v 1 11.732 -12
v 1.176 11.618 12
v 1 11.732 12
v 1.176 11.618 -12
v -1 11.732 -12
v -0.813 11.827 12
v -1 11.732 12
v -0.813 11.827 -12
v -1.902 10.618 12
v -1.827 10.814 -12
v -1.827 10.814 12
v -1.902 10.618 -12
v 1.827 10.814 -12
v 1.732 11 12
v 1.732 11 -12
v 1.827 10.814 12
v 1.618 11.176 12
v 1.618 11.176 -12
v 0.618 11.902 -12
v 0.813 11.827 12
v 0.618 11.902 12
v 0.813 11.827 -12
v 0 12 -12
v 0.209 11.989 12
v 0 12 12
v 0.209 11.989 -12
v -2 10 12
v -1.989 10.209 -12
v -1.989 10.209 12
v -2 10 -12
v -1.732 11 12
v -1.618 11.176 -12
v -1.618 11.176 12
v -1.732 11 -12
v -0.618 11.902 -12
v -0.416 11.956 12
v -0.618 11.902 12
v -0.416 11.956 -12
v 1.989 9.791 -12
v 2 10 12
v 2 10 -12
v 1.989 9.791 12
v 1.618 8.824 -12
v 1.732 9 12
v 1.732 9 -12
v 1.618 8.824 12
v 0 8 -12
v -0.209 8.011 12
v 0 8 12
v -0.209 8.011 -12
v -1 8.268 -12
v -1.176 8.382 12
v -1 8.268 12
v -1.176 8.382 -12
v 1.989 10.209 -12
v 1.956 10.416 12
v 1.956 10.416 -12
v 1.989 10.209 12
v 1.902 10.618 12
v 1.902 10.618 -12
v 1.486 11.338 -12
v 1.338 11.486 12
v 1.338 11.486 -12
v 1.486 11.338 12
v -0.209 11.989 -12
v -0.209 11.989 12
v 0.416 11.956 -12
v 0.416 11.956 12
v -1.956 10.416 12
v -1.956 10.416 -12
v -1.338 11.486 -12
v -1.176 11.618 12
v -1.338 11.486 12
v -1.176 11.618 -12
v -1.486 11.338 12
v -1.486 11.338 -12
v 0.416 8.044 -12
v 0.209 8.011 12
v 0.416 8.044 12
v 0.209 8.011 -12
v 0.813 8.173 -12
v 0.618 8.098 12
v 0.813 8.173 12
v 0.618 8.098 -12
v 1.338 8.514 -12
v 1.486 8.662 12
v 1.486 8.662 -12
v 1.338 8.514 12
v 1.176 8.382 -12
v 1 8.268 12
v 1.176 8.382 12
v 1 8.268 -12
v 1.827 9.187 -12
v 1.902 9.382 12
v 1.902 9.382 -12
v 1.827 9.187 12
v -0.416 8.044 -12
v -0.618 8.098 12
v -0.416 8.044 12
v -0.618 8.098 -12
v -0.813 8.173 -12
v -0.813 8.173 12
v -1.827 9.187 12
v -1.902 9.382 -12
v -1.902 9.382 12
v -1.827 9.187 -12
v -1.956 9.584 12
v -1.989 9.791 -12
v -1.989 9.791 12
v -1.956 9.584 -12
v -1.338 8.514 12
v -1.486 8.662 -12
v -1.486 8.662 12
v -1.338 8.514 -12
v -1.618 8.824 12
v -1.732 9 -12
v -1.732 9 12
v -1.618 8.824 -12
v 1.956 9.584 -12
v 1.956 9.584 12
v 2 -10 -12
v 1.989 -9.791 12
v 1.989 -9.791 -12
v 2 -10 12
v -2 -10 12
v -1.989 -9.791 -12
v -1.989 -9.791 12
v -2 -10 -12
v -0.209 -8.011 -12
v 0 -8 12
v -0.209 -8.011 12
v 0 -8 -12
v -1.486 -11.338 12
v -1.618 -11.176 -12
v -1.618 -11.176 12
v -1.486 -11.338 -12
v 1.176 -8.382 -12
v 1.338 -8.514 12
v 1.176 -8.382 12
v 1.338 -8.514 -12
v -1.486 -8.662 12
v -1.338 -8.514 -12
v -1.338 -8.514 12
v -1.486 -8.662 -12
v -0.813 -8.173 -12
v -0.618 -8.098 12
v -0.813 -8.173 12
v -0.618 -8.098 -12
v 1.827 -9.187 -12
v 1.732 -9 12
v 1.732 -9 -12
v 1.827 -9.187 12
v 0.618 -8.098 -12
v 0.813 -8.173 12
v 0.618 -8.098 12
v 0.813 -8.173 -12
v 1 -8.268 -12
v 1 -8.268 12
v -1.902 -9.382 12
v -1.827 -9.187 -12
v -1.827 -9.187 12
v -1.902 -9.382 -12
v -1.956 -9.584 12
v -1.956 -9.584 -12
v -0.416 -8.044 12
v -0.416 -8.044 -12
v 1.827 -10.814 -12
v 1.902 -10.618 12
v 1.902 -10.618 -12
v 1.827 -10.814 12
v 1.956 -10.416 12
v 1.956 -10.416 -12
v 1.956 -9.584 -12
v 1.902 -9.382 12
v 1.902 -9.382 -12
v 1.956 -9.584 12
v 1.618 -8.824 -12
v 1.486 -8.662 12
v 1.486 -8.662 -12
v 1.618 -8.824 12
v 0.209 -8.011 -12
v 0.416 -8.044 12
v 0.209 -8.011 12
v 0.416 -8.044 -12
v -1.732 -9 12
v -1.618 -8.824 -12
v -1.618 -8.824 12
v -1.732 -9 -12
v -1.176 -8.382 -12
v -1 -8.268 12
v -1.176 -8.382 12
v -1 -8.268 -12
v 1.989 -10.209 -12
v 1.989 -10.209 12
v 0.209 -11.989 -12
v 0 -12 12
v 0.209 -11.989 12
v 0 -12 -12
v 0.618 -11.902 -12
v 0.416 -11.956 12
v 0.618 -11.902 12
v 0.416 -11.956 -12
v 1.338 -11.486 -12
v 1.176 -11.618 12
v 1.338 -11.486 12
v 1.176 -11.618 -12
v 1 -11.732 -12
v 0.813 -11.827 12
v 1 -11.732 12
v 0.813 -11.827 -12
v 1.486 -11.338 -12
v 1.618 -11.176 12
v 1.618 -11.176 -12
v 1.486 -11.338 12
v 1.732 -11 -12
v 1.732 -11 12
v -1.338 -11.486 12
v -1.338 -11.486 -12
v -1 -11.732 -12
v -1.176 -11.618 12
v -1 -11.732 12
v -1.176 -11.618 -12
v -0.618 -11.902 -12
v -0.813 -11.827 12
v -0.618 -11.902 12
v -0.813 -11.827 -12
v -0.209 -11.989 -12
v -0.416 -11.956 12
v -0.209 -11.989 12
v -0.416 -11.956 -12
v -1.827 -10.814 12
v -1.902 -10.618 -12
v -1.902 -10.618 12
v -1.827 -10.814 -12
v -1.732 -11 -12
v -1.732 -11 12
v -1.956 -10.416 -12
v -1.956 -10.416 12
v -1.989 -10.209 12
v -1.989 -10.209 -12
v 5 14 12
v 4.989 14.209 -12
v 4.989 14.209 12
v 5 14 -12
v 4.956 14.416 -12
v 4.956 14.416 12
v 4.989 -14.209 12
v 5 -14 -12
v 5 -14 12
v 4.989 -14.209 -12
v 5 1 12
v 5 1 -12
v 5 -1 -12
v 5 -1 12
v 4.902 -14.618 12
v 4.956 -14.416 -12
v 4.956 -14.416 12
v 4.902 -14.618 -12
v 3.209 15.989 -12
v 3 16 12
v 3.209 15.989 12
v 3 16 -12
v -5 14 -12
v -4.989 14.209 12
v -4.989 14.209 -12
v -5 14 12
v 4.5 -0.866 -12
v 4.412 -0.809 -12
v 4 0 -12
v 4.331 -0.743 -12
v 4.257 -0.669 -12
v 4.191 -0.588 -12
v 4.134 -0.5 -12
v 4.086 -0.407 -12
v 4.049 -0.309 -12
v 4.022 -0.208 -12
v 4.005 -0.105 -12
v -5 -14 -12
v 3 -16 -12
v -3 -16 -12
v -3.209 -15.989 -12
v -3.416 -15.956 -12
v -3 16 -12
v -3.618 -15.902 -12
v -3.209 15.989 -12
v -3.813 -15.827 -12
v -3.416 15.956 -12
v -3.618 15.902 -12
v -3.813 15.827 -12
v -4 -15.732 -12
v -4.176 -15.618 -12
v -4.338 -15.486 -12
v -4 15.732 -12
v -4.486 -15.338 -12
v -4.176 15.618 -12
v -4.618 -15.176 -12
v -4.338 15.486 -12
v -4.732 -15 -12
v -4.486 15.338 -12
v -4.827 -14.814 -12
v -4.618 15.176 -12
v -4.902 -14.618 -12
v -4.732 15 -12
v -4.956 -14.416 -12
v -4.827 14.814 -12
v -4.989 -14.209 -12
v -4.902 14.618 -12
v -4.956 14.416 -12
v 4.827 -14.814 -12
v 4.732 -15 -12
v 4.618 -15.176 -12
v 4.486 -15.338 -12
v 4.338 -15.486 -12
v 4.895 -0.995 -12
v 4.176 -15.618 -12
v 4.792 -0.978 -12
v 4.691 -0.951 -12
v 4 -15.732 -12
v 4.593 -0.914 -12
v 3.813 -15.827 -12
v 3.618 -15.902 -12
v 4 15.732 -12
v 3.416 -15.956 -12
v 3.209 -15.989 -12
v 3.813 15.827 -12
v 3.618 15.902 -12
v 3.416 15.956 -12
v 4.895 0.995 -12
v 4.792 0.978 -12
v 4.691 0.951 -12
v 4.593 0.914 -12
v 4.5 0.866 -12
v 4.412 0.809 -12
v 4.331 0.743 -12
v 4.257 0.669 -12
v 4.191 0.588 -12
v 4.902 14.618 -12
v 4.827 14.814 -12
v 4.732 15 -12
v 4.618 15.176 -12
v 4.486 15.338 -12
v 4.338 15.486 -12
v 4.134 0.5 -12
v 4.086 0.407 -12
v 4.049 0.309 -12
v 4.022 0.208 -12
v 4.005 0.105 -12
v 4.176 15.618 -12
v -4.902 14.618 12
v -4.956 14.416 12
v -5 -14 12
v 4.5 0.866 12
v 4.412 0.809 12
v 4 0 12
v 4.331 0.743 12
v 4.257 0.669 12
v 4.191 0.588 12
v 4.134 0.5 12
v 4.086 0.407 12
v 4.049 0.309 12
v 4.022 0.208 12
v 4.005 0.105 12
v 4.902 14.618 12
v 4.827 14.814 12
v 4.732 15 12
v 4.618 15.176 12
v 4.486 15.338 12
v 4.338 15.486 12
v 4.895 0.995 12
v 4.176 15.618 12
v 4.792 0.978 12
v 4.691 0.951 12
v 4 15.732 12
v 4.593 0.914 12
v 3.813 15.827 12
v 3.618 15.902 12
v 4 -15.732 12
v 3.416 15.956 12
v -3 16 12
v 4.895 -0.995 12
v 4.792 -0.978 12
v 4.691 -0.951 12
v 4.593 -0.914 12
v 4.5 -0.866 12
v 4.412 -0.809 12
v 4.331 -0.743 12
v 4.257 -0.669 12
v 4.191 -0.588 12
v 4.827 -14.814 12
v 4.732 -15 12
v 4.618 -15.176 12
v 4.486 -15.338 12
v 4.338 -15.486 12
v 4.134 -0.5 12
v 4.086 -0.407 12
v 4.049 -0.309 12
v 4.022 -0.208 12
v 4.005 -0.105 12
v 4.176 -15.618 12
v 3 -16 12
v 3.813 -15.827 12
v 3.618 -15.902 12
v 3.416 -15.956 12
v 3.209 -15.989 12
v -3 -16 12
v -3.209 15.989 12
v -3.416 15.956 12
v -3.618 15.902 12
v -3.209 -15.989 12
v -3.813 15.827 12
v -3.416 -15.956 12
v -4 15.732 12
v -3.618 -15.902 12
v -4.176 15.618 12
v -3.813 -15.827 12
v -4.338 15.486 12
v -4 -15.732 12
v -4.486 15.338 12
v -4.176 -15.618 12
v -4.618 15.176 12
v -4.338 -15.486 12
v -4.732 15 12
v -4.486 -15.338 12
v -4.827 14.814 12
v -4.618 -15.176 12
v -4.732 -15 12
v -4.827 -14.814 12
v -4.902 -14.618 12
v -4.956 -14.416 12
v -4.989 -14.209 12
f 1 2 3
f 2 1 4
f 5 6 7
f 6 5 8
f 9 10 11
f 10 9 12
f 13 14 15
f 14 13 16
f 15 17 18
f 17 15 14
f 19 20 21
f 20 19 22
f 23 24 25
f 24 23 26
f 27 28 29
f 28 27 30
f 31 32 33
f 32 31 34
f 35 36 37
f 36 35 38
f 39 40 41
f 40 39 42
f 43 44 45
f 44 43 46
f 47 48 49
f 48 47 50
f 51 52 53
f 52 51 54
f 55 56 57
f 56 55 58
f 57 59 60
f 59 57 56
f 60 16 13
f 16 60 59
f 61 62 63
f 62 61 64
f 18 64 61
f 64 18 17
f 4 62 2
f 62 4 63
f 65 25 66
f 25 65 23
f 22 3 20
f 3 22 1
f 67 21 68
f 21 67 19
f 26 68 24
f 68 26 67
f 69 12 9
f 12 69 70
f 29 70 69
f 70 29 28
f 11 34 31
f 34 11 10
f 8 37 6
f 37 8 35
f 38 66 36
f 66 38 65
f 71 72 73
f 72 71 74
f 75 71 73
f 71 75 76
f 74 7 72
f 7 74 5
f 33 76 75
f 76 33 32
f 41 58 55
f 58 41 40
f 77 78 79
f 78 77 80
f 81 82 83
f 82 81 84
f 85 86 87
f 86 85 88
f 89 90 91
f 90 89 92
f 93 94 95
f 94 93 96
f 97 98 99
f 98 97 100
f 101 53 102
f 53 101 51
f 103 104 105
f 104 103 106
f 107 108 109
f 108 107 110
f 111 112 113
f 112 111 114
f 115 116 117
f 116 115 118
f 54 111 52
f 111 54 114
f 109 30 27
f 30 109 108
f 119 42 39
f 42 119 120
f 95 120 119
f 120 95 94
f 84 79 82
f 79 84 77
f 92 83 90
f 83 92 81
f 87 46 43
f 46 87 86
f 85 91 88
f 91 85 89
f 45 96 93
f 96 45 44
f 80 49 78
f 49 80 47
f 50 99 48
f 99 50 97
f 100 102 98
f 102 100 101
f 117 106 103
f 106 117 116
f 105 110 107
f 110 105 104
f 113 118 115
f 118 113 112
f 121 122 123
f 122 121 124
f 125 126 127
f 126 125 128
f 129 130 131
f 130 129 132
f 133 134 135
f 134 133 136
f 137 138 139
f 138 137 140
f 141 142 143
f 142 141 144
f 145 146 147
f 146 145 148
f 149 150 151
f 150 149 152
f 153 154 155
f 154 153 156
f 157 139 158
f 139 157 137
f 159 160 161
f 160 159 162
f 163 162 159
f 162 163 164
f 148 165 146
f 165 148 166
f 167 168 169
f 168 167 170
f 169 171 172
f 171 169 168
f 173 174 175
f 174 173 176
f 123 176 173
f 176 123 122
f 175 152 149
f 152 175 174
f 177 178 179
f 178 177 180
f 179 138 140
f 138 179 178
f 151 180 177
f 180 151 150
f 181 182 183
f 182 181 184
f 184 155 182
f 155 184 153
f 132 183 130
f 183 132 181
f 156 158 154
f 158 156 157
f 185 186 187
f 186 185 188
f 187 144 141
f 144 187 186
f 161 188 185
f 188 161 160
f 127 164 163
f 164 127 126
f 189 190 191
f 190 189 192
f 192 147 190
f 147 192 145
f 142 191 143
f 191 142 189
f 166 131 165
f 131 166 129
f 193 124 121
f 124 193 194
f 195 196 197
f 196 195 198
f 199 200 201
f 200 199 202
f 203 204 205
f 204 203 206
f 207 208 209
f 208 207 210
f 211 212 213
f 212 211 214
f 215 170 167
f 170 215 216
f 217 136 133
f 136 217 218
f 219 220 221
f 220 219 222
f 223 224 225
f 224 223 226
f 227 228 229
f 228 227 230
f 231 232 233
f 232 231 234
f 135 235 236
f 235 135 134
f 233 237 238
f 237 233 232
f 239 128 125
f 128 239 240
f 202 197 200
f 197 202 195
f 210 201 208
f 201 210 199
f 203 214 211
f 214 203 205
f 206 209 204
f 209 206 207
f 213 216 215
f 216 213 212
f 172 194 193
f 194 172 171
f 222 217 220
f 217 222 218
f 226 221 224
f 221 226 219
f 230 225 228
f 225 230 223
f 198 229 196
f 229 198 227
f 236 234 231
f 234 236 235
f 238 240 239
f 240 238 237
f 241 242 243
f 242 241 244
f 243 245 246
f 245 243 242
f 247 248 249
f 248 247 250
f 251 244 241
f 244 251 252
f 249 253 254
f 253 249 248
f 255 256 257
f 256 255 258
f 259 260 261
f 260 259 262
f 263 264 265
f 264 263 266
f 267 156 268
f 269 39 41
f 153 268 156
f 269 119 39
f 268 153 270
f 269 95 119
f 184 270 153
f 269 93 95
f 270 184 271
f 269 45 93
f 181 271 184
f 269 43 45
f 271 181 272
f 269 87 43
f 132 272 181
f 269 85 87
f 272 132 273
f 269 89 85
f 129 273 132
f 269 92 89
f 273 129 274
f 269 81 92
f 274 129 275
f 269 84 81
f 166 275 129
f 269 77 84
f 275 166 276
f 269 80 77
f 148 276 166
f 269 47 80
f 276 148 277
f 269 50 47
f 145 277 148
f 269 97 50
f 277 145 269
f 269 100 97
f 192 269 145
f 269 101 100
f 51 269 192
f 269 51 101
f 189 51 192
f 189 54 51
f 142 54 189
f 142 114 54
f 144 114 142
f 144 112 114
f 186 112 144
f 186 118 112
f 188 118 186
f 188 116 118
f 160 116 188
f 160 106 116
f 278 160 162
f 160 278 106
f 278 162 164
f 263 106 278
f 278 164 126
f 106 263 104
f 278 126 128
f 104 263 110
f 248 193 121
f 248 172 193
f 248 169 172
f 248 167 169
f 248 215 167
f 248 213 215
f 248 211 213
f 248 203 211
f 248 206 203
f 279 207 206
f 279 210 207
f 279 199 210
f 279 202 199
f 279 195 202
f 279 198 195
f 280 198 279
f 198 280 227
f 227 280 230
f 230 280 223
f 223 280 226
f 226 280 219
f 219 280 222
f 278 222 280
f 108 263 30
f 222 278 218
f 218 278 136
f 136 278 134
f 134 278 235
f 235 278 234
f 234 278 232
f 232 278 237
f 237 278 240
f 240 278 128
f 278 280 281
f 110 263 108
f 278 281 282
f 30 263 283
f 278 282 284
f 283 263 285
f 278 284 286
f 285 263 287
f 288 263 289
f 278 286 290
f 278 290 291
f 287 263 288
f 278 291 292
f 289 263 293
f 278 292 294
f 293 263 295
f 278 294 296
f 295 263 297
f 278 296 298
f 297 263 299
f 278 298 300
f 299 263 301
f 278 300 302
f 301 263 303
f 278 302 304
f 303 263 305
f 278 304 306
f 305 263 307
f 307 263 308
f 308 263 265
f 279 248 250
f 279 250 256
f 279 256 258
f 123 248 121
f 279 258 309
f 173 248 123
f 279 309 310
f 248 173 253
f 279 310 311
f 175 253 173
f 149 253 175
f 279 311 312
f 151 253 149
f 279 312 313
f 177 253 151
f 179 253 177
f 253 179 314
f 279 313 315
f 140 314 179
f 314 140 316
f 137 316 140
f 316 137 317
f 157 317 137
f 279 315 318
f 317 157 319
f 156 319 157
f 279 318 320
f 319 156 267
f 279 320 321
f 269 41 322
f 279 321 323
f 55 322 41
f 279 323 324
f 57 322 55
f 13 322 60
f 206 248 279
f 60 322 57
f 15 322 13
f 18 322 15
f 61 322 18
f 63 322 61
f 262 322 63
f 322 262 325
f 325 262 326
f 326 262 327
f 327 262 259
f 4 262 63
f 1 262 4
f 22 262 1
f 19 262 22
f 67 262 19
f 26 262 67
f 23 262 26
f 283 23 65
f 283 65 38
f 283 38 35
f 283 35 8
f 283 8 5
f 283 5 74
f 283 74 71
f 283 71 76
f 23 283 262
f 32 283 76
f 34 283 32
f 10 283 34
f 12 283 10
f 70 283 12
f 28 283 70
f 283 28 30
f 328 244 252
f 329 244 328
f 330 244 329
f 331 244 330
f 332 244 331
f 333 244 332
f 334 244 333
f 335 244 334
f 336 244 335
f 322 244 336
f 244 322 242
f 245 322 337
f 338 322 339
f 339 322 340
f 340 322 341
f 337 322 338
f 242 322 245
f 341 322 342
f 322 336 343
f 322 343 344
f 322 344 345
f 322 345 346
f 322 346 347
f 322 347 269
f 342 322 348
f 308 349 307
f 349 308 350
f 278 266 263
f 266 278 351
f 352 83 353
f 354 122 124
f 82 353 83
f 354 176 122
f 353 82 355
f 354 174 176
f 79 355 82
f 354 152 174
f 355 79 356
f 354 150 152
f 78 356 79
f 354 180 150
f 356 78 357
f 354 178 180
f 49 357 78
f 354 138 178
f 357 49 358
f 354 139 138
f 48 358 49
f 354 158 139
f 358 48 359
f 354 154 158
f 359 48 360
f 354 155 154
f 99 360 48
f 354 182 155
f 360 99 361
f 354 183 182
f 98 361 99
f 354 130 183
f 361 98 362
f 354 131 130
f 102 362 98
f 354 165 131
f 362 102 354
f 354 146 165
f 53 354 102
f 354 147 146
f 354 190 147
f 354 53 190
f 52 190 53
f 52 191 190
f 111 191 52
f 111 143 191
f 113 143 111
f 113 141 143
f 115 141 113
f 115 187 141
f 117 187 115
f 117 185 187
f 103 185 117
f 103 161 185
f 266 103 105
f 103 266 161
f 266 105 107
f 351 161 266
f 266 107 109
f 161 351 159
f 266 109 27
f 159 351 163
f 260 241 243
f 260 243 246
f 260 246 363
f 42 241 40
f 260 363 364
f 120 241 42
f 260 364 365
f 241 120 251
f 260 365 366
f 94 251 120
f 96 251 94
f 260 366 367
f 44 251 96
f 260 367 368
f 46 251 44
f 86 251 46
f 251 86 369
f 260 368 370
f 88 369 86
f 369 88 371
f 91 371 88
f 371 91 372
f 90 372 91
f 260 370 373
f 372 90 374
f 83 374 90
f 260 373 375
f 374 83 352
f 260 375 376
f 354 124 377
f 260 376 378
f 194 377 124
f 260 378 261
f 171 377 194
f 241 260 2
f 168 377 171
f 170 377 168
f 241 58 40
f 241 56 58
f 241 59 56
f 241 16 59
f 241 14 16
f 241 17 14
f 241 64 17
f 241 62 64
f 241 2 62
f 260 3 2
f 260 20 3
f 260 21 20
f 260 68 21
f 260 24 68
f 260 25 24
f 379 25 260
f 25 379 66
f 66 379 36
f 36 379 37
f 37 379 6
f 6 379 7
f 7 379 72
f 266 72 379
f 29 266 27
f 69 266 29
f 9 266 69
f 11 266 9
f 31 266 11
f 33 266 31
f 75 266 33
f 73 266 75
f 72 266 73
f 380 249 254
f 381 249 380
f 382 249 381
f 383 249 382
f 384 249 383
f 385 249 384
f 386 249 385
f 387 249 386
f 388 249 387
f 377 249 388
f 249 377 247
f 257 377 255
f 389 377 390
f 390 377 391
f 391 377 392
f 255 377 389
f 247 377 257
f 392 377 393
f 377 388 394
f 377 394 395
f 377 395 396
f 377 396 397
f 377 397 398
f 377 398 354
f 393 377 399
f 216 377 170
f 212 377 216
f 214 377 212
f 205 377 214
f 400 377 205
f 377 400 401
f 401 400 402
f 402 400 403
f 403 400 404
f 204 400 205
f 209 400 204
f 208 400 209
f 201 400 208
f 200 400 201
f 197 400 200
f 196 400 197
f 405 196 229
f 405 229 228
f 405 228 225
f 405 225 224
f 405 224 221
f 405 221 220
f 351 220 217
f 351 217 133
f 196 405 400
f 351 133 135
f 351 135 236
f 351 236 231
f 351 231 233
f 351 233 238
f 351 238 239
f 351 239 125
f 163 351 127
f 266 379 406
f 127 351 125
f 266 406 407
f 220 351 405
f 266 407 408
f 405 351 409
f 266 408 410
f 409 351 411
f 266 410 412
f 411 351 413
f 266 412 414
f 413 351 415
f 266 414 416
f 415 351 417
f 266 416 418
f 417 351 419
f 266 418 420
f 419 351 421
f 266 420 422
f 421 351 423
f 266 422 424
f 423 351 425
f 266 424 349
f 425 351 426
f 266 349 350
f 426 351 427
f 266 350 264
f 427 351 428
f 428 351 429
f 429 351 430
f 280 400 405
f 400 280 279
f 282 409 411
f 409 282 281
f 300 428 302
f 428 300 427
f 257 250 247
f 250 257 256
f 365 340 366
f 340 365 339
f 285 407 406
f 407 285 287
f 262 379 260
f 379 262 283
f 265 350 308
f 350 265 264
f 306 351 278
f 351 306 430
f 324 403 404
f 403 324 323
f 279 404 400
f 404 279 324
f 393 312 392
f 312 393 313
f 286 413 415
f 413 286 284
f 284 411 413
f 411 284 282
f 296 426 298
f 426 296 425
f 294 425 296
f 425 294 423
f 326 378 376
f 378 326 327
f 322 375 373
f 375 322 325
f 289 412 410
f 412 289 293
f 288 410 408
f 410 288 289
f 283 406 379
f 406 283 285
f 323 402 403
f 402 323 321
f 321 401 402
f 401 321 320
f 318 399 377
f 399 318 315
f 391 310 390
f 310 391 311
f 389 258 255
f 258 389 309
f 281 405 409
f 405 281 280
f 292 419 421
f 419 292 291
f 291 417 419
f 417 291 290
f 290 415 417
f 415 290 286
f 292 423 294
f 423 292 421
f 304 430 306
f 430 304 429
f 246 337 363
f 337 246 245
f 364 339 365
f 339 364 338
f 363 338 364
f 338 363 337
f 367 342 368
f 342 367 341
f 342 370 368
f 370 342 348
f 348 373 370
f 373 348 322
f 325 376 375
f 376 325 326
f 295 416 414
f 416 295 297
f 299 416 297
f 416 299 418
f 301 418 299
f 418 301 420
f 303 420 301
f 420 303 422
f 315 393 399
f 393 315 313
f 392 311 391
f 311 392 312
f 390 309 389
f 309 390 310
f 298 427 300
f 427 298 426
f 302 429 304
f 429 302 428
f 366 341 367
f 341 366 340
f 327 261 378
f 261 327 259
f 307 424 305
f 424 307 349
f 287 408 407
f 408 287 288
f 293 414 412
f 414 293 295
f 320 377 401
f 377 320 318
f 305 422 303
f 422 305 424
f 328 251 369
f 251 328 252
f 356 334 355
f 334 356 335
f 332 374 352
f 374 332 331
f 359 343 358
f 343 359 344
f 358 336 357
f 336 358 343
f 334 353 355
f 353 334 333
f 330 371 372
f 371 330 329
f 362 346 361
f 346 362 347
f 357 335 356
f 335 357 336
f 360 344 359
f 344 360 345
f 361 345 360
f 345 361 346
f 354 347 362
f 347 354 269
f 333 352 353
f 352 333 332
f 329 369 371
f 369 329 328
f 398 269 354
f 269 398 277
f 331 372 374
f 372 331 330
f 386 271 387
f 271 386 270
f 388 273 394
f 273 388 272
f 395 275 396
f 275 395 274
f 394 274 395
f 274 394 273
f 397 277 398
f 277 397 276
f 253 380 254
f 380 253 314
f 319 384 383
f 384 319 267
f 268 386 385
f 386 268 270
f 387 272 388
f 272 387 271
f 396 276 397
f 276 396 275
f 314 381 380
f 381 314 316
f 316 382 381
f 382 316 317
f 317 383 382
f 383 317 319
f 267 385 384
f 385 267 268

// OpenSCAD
 
$fn=60;

screwCutout = 4;

blockHeigth = 24;
blockWidth = 10;
blockLength = 32;

holeSepertation = 20;

//import("../Modular_carriages_for_4020_v-slot_for_d3m-bot_d-bot_c-bot/files/test1.ast");

//color("red") cube([10,32,24],center=true);

difference(){
//	plate2Point(blockLength,blockHeigth,blockWidth);
	plate4Point(blockWidth,blockLength,blockHeigth,4);
	for(a = [1,-1]){
		translate([0,a * (holeSepertation/2),0])
			cylinder(h=blockHeigth+5, d=screwCutout, center=true);
	}
	translate([blockWidth/2,0,0])
		cylinder(h=blockHeigth+5, d=2, center=true);
}
////////////////////////////////////////////////////////////////////////////////////////////////////
module plate2Point(y,z,d){
	hull(){
		color("green") translate([0 ,(y/2) -(d/2),0]) cylinder(h=z, d=d, center=true);
		color("blue")  translate([0 ,-(y/2)+(d/2),0]) cylinder(h=z, d=d, center=true);
	}
}
////////////////////////////////////////////////////////////////////////////////////////////////////
module plate4Point(x,y,z,d){
	hull(){
		color("green") translate([(x/2)-(d/2) ,(y/2) -(d/2),0]) cylinder(h=z, d=d, center=true);
		color("blue")  translate([(x/2)-(d/2) ,-(y/2)+(d/2),0]) cylinder(h=z, d=d, center=true);
		color("red")   translate([-(x/2)+(d/2),(y/2) -(d/2),0]) cylinder(h=z, d=d, center=true);
		color("grey")  translate([-(x/2)+(d/2),-(y/2)+(d/2),0]) cylinder(h=z, d=d, center=true);
	}
}
